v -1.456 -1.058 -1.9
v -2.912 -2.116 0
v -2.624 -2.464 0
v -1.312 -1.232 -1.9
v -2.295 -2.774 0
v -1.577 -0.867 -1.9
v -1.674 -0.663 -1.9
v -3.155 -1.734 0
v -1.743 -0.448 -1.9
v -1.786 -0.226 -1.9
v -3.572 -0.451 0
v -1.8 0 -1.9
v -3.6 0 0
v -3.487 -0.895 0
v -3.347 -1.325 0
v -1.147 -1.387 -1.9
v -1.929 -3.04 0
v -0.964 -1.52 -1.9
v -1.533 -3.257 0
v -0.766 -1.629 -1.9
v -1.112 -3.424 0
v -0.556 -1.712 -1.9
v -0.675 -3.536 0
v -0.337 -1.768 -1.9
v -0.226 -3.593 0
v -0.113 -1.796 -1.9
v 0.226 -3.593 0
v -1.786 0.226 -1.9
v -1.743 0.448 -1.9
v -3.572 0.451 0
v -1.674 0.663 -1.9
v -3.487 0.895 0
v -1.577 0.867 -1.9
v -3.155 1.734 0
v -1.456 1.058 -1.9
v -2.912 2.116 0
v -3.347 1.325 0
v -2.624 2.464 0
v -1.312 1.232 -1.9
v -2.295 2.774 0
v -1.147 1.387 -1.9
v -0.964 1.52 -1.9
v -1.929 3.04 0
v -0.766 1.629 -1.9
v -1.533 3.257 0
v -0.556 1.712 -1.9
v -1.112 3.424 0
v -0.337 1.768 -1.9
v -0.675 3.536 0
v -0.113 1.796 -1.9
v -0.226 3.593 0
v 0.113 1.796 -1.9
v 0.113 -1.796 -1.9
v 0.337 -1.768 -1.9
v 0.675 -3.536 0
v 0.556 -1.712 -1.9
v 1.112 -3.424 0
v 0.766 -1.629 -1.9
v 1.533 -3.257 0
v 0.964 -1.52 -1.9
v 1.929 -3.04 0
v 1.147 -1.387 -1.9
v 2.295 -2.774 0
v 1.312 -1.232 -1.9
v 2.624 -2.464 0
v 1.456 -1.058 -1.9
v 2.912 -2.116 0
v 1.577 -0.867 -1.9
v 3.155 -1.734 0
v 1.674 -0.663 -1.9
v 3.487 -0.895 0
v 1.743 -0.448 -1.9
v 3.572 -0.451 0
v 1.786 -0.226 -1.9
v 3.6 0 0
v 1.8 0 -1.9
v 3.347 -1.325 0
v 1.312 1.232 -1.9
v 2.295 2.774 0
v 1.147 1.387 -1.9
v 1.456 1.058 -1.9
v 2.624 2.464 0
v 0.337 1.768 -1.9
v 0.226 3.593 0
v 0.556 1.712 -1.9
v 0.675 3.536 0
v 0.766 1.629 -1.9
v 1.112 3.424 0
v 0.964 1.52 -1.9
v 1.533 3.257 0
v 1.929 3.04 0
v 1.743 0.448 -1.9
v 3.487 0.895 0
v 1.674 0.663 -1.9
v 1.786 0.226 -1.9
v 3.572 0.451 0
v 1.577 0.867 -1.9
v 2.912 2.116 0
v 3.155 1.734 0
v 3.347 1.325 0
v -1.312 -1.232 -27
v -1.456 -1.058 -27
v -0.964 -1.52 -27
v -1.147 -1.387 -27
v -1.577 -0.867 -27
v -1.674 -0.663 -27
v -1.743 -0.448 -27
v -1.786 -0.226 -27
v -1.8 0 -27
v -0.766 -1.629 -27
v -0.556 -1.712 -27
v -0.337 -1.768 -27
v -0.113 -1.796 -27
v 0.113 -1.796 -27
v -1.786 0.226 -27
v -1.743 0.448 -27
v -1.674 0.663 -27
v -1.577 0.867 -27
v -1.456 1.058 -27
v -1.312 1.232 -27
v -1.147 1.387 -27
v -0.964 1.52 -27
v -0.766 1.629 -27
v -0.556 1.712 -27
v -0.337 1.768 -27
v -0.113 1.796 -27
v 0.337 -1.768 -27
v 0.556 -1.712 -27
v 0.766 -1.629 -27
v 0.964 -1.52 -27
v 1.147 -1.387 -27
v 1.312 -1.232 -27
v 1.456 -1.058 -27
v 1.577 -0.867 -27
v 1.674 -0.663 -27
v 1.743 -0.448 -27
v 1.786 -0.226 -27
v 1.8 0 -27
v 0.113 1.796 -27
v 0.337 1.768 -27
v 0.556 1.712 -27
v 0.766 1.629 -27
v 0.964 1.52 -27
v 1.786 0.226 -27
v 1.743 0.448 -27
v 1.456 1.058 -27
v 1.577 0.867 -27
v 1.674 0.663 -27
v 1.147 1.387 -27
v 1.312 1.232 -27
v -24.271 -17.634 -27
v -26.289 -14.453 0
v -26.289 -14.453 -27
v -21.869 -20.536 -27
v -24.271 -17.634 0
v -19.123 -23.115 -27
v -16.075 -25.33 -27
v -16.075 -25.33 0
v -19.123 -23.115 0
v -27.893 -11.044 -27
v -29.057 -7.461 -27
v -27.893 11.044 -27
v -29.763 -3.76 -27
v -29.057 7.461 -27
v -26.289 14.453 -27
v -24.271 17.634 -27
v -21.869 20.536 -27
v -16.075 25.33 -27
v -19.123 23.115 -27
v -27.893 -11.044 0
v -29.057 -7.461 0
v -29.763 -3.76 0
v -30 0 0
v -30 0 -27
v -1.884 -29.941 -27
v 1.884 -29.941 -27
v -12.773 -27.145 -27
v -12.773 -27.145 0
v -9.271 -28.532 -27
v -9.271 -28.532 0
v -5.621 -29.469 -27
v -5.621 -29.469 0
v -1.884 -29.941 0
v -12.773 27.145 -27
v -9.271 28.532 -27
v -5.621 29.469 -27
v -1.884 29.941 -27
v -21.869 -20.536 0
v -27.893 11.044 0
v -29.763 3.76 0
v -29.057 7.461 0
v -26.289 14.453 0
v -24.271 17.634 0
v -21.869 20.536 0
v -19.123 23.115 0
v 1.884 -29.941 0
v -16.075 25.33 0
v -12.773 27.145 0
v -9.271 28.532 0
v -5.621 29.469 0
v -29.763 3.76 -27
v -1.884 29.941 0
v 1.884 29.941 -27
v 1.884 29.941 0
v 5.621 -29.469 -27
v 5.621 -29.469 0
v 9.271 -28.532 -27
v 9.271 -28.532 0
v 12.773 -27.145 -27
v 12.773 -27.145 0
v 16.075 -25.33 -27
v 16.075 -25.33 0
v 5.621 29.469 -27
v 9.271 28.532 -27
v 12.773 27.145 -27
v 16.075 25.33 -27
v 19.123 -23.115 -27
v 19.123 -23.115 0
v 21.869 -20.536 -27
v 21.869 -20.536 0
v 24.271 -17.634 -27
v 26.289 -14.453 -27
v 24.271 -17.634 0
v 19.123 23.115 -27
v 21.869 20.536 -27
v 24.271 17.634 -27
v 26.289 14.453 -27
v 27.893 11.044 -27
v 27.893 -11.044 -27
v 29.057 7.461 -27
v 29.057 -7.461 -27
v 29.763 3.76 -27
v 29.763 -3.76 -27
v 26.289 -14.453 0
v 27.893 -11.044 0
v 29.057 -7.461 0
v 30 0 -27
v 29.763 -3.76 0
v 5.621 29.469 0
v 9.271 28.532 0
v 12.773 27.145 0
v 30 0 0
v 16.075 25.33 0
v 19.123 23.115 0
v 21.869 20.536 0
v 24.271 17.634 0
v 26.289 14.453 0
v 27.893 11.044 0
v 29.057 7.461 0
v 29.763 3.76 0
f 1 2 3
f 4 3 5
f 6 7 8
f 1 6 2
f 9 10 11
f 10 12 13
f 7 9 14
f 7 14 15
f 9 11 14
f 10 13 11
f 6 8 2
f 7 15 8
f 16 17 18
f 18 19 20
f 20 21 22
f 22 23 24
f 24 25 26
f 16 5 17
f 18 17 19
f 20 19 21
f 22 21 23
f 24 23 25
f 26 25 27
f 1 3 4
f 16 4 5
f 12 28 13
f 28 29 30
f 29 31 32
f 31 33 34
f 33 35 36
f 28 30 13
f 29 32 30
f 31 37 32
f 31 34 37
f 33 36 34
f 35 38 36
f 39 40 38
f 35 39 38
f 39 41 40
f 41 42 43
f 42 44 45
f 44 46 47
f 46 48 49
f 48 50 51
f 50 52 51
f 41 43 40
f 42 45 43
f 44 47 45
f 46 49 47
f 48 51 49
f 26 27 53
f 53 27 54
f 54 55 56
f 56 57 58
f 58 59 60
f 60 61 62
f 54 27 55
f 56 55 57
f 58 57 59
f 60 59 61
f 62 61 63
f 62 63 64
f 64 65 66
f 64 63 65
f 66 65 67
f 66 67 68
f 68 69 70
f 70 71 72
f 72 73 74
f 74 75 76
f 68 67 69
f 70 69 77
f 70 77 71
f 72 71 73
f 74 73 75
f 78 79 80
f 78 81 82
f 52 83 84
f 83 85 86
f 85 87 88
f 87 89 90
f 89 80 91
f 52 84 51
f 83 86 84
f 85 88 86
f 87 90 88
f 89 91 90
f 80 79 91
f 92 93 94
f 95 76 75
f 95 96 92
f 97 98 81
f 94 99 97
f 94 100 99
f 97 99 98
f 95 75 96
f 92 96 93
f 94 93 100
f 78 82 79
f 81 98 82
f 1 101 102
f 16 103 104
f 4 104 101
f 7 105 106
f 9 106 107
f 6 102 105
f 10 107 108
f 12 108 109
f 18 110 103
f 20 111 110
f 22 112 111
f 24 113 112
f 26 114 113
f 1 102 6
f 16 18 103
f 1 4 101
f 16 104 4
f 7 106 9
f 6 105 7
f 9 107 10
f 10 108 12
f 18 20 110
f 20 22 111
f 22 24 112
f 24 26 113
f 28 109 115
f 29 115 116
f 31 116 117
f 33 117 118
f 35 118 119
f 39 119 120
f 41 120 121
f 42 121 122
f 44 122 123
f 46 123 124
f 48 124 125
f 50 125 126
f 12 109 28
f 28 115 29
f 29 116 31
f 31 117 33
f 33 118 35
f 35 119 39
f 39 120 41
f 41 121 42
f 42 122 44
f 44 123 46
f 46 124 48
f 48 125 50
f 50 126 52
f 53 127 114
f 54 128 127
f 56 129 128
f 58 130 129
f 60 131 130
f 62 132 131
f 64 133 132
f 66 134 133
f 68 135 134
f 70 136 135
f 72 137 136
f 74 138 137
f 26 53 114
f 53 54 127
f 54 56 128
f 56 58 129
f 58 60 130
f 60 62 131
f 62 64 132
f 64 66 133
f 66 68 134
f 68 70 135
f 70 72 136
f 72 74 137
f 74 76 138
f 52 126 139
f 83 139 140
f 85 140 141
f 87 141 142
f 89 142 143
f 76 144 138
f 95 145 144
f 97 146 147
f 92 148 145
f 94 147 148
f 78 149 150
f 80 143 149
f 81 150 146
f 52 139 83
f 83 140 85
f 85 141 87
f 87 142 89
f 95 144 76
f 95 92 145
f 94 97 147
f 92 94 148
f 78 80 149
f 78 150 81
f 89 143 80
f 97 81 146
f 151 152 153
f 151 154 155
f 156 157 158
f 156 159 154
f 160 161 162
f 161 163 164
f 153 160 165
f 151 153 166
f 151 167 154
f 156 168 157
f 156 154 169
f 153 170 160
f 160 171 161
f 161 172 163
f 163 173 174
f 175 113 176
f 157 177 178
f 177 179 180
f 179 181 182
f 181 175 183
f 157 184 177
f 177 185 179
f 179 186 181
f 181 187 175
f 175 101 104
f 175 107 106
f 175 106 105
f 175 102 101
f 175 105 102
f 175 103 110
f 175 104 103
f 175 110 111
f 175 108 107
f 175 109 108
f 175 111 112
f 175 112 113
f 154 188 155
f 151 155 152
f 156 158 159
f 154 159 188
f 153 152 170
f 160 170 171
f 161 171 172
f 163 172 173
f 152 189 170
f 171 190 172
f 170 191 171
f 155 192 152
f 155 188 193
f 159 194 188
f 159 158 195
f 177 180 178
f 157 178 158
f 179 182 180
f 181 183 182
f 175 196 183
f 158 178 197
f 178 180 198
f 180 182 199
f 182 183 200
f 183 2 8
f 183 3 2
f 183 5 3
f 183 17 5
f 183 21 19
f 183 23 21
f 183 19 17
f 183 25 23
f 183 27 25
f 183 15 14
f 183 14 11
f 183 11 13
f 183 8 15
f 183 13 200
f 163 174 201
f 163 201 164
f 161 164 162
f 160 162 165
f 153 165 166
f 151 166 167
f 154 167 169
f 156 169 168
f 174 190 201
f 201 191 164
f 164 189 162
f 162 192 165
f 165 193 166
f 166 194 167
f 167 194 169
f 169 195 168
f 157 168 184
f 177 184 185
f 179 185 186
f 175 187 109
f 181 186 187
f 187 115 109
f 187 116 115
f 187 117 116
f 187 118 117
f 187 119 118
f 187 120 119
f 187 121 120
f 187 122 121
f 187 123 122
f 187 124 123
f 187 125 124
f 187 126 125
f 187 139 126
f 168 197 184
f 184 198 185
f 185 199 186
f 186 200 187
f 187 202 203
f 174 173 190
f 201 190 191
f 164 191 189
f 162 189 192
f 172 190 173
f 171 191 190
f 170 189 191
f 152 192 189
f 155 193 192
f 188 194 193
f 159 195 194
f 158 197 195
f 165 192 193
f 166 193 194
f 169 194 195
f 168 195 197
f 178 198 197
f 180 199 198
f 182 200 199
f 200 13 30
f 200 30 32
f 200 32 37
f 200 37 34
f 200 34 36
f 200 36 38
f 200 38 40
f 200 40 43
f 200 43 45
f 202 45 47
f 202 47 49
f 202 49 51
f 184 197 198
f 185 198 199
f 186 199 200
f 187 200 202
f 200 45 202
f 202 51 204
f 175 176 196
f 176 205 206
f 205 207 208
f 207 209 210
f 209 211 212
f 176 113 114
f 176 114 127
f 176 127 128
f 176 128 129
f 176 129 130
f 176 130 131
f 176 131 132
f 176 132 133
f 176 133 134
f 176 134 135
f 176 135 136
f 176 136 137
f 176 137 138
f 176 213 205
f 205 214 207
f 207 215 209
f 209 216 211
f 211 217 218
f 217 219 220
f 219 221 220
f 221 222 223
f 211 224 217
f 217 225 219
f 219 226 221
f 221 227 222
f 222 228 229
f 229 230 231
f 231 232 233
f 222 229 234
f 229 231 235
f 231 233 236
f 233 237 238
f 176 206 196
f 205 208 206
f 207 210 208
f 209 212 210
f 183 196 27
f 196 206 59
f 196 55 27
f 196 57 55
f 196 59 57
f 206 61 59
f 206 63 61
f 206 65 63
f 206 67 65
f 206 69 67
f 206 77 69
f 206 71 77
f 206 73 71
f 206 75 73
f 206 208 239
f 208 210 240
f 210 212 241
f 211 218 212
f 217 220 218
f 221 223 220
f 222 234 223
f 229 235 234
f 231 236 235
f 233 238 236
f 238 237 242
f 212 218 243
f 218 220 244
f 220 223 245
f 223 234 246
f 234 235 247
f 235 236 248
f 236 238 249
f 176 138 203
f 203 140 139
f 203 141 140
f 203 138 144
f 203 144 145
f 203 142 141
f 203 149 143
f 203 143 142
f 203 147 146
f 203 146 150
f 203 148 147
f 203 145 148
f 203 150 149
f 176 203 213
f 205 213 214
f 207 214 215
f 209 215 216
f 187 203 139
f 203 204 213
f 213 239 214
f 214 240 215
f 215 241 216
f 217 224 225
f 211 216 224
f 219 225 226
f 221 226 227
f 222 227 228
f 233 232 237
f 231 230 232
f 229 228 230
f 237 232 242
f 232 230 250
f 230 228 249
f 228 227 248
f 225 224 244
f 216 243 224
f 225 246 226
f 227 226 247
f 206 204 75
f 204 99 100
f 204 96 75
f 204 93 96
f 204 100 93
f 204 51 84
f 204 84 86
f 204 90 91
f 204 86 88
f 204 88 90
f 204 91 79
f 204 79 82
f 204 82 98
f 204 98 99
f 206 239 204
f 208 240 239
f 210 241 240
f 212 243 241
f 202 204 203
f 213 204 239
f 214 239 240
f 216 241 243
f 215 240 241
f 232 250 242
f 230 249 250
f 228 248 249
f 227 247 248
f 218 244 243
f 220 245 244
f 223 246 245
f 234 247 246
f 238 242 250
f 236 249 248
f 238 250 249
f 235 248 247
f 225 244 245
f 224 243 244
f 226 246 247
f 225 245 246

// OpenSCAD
$fn = 50;

difference() {
	union() {
		translate(v = [0, 0, -27.0]) {
			cylinder(h = 27, r = 30.0);
		}
	}
	union() {
		translate(v = [0, 0, 0]) {
			rotate(a = [0, 0, 0]) {
				difference() {
					union() {
						translate(v = [0, 0, -30.0]) {
							cylinder(h = 30, r = 1.5);
						}
						translate(v = [0, 0, -1.9]) {
							cylinder(h = 1.9, r1 = 1.8, r2 = 3.6);
						}
						translate(v = [0, 0, -30.0]) {
							cylinder(h = 30, r = 1.8);
						}
						translate(v = [0, 0, -30.0]) {
							cylinder(h = 30, r = 1.5);
						}
					}
					union();
				}
			}
		}
	}
}
